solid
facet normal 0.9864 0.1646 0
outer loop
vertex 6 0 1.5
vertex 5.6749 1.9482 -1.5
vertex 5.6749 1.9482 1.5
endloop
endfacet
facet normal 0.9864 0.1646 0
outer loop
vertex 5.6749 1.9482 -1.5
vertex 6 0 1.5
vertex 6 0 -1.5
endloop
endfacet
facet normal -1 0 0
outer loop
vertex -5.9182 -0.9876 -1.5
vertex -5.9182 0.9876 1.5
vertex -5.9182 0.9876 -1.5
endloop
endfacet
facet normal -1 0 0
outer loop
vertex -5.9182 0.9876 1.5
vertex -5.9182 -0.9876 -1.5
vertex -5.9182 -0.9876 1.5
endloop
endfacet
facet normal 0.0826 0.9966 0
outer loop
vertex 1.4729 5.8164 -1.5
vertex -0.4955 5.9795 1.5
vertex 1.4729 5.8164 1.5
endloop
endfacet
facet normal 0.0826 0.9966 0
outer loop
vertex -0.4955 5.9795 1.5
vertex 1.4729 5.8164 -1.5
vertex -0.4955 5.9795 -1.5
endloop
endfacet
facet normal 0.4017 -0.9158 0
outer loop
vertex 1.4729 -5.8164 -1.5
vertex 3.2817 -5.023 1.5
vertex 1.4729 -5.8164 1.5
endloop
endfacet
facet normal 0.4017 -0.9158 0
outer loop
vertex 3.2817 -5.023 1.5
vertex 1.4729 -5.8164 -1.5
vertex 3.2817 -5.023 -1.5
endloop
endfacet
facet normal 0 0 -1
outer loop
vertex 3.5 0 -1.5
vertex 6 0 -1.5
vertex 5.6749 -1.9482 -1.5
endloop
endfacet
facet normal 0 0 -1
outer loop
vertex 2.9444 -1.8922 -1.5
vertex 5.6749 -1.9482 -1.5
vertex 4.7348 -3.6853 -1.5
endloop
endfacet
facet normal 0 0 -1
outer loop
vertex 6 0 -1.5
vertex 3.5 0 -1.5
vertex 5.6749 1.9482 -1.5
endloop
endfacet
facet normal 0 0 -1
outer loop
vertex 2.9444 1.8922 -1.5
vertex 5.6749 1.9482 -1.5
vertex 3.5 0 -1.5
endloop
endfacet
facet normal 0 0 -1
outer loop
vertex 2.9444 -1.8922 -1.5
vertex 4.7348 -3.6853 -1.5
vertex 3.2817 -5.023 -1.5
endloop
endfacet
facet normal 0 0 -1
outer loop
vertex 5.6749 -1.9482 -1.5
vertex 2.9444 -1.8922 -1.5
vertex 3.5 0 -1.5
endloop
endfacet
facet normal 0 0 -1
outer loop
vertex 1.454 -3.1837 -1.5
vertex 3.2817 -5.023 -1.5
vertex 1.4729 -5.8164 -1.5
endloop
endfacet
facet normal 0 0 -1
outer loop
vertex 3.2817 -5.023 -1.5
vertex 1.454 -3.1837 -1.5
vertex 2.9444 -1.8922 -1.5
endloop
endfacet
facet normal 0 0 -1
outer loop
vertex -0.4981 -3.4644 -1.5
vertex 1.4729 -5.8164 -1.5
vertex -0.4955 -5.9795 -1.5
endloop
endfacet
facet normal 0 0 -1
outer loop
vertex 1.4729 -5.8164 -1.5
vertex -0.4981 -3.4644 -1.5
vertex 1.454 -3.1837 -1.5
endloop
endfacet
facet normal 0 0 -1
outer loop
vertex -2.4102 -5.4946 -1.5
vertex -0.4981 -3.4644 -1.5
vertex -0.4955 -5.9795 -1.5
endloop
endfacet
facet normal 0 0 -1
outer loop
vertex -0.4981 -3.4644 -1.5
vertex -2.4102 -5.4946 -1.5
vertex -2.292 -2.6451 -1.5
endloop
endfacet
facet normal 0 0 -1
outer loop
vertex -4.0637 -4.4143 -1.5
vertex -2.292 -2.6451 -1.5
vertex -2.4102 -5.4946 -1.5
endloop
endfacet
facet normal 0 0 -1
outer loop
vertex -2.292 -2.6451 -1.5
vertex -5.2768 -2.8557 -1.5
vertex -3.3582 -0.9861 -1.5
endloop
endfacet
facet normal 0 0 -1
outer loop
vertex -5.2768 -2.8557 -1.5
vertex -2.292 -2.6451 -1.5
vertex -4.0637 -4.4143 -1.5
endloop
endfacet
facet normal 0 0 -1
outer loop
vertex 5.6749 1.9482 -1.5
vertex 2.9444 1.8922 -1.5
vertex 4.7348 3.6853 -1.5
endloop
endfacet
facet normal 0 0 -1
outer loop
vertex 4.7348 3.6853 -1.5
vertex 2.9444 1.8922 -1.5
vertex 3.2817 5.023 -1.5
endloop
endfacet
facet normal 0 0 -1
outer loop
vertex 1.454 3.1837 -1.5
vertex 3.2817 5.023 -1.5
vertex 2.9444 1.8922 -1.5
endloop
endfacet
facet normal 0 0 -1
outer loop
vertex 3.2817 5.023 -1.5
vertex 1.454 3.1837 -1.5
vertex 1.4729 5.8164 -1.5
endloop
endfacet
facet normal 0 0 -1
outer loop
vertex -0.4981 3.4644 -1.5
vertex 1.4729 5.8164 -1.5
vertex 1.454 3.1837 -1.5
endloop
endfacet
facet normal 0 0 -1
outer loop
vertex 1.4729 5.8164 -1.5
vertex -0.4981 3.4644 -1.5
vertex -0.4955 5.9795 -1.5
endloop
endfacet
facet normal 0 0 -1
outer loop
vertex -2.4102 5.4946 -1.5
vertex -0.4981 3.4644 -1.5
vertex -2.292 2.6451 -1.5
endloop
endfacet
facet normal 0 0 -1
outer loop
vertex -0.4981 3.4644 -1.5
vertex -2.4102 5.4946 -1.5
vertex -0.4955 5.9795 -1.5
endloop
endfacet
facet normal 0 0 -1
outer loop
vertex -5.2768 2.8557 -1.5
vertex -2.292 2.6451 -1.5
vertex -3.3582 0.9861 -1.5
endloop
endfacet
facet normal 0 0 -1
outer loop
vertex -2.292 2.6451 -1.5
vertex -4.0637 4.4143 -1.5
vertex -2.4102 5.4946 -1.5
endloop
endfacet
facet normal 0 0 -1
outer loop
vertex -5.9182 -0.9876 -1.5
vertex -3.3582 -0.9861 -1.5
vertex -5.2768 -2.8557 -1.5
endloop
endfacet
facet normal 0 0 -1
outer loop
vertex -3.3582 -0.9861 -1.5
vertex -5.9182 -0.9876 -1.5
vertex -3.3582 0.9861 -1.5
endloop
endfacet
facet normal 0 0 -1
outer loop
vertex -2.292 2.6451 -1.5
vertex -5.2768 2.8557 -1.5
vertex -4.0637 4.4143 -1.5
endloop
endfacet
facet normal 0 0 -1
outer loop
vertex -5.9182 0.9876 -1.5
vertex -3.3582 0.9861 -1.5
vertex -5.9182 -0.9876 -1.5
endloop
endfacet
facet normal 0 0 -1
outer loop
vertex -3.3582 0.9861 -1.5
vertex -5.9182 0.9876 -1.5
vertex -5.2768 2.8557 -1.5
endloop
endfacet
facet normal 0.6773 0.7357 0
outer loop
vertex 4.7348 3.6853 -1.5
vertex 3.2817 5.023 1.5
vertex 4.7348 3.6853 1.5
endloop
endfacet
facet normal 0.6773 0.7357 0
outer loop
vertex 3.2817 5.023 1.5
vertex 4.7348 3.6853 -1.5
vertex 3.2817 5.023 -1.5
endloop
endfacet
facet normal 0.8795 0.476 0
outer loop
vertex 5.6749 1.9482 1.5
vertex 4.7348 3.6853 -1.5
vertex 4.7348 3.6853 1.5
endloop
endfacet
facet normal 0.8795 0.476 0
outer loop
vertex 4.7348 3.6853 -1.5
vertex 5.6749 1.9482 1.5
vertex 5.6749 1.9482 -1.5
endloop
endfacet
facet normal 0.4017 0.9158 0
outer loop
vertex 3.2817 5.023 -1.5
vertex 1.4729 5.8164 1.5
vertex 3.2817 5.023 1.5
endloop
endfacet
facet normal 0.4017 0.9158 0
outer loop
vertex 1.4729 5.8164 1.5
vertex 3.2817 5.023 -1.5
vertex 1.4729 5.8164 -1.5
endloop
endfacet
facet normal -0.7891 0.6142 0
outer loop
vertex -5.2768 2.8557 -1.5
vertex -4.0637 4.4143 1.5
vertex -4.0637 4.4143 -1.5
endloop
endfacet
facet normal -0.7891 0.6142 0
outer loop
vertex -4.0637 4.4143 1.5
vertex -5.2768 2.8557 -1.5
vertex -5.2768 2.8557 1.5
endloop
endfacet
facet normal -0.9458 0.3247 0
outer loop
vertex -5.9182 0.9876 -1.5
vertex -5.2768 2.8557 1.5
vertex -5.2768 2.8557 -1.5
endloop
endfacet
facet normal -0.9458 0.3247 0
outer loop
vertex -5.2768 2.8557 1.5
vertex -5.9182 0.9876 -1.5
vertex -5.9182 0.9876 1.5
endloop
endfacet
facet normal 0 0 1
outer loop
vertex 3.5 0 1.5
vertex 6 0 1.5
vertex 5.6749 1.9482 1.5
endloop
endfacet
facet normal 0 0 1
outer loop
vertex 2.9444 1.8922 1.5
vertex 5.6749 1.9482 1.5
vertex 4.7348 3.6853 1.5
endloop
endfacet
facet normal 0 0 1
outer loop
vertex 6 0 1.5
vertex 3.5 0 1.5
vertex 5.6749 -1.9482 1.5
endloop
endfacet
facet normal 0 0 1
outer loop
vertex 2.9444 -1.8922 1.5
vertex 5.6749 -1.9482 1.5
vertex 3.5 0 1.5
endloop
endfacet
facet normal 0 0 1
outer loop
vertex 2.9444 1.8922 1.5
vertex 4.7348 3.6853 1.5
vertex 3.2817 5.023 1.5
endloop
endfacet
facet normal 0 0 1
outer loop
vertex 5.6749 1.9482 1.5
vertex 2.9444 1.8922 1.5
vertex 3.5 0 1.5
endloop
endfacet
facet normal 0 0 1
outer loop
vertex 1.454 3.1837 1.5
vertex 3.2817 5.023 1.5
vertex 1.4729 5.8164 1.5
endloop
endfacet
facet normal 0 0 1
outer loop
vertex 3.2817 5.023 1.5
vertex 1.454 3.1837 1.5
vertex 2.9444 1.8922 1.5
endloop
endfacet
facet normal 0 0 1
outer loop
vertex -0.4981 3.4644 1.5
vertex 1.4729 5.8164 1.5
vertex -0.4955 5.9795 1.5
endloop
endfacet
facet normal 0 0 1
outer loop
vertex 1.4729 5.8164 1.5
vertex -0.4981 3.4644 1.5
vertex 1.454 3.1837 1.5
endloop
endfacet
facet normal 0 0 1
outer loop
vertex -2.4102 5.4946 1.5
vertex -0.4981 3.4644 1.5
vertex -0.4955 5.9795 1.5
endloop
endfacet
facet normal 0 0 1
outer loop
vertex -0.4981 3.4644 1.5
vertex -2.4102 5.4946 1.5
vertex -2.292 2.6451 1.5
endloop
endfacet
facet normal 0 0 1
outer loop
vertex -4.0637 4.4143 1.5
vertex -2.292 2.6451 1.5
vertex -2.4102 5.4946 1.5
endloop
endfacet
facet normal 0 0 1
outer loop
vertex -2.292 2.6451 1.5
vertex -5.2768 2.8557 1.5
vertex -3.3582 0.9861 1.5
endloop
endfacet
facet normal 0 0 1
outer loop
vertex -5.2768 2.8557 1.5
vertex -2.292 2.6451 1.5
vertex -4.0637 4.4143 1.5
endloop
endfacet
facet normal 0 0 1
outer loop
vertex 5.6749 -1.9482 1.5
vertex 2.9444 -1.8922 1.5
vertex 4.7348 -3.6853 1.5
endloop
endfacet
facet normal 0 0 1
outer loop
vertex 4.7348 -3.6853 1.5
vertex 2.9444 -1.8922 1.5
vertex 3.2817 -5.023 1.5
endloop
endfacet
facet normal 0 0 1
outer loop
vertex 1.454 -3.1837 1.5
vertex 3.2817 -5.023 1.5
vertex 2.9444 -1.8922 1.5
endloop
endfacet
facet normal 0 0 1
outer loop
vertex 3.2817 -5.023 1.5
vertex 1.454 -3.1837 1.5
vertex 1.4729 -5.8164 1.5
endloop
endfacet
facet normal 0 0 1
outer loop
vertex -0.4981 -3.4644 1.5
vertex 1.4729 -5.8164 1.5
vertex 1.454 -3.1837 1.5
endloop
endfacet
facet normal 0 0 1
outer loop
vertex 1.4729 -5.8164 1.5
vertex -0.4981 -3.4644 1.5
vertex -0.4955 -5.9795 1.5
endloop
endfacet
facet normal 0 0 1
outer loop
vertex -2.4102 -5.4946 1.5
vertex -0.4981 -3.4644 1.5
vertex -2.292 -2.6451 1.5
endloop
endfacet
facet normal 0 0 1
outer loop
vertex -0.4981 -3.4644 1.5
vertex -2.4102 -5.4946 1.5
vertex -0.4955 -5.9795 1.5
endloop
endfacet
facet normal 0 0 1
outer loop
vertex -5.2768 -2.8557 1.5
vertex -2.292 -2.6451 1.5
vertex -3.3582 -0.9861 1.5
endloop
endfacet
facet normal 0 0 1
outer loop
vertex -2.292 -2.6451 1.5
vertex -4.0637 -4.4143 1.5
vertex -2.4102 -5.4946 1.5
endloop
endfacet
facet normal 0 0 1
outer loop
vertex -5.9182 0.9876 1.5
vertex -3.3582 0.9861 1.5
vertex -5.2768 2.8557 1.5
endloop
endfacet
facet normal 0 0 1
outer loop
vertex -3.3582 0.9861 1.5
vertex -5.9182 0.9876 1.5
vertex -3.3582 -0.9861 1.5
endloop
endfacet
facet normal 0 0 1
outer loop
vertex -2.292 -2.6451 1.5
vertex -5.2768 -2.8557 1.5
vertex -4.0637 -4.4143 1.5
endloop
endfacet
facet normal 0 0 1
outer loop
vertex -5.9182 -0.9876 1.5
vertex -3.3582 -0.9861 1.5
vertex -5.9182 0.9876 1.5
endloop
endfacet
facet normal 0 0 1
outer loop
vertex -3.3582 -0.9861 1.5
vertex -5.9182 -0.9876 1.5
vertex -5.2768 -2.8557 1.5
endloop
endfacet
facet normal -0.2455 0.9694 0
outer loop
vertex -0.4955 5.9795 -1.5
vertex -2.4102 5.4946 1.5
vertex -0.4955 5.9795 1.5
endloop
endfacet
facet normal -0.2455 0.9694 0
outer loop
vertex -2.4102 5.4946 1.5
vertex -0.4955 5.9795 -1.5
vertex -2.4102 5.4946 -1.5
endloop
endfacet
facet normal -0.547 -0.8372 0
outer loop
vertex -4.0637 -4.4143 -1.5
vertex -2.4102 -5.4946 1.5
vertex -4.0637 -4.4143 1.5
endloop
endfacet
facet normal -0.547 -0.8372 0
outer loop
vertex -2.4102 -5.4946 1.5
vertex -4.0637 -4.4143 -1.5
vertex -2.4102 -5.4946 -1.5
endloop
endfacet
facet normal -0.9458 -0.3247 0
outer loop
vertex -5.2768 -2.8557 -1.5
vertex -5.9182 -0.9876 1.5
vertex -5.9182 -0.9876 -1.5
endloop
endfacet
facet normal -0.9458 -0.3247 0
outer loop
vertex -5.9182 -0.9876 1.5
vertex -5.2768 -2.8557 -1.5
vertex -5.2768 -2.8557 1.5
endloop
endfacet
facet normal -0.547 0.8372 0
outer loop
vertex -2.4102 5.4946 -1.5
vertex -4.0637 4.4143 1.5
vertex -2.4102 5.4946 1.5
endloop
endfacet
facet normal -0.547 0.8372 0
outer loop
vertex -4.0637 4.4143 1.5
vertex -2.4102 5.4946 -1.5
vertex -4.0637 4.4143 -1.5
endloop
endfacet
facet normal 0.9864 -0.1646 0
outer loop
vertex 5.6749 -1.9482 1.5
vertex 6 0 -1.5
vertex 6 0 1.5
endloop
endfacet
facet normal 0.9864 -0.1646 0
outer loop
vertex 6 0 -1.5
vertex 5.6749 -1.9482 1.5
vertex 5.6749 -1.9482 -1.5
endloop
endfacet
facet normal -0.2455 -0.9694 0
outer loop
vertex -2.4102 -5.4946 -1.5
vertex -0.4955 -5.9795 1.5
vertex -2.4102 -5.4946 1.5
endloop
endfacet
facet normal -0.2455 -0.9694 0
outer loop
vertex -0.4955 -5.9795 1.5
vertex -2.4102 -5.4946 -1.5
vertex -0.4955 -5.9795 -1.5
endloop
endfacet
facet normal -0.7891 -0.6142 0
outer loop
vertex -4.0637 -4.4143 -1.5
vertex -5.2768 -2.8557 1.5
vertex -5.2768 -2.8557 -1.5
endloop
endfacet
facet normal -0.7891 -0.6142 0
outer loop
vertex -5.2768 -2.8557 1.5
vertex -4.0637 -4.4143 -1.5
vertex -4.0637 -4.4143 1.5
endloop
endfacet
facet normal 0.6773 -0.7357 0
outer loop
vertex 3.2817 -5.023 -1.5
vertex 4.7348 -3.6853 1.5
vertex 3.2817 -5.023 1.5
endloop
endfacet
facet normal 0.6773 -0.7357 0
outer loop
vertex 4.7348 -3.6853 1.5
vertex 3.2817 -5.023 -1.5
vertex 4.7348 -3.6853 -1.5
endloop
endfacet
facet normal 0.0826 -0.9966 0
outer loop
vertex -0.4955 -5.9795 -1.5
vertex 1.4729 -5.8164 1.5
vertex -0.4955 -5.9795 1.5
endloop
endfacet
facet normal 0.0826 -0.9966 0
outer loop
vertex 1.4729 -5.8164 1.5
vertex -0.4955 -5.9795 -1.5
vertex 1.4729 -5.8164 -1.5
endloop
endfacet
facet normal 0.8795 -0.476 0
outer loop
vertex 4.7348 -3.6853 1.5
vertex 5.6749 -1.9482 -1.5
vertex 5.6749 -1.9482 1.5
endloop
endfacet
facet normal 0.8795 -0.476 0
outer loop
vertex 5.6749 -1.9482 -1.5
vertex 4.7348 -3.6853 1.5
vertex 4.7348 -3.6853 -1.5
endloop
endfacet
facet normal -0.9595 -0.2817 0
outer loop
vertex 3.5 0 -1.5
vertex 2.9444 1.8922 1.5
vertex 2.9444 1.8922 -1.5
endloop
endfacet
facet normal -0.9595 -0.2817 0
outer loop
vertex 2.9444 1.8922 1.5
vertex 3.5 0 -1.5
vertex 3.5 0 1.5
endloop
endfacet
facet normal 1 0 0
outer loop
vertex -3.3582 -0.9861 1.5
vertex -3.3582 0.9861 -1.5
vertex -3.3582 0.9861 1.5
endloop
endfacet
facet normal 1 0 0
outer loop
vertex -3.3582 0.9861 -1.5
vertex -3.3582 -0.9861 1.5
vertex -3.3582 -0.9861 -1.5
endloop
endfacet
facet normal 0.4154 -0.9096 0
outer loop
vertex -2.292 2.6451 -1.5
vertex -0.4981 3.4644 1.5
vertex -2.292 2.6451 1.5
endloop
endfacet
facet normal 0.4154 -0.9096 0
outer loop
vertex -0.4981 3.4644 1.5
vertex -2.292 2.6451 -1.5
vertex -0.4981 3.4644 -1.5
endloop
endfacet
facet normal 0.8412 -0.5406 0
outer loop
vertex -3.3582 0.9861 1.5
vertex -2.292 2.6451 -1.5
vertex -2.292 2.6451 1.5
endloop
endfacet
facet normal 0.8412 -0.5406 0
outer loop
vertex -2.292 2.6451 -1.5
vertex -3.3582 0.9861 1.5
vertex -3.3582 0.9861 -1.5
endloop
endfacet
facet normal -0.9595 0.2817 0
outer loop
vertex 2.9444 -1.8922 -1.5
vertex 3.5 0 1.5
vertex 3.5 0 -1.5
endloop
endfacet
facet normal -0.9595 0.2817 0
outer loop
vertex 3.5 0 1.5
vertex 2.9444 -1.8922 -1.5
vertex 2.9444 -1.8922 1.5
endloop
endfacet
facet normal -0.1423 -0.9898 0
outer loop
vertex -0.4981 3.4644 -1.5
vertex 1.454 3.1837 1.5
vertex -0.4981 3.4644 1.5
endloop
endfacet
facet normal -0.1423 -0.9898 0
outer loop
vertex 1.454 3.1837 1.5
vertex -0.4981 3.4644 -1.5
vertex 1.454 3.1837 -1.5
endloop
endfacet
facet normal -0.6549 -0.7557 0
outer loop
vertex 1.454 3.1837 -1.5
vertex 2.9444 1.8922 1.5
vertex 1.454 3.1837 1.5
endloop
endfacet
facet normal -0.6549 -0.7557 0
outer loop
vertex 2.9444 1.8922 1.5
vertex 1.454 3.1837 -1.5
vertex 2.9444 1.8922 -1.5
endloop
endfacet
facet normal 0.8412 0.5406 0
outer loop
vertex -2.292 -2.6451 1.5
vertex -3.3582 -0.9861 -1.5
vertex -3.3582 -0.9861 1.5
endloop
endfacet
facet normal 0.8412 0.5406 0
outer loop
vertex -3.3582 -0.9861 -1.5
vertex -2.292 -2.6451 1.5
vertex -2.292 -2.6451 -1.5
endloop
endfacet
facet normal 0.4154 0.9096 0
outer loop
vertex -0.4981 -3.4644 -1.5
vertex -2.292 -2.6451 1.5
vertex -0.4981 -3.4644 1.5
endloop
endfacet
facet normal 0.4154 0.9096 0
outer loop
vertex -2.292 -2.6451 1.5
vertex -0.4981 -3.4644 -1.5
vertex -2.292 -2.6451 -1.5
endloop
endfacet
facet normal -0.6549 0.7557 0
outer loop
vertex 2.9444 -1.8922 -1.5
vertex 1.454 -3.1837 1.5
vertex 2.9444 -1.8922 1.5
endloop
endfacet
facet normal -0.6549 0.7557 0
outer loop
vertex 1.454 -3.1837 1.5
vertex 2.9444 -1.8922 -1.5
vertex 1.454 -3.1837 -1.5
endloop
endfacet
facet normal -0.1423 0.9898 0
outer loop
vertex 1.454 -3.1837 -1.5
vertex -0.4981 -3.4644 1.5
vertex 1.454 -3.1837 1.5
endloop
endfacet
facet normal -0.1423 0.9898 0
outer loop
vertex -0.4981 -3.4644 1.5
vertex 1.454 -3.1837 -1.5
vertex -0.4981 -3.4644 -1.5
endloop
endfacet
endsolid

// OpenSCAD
difference(){
cylinder(3,6,6,true);
cylinder(4,3.5,3.5,true);
}
